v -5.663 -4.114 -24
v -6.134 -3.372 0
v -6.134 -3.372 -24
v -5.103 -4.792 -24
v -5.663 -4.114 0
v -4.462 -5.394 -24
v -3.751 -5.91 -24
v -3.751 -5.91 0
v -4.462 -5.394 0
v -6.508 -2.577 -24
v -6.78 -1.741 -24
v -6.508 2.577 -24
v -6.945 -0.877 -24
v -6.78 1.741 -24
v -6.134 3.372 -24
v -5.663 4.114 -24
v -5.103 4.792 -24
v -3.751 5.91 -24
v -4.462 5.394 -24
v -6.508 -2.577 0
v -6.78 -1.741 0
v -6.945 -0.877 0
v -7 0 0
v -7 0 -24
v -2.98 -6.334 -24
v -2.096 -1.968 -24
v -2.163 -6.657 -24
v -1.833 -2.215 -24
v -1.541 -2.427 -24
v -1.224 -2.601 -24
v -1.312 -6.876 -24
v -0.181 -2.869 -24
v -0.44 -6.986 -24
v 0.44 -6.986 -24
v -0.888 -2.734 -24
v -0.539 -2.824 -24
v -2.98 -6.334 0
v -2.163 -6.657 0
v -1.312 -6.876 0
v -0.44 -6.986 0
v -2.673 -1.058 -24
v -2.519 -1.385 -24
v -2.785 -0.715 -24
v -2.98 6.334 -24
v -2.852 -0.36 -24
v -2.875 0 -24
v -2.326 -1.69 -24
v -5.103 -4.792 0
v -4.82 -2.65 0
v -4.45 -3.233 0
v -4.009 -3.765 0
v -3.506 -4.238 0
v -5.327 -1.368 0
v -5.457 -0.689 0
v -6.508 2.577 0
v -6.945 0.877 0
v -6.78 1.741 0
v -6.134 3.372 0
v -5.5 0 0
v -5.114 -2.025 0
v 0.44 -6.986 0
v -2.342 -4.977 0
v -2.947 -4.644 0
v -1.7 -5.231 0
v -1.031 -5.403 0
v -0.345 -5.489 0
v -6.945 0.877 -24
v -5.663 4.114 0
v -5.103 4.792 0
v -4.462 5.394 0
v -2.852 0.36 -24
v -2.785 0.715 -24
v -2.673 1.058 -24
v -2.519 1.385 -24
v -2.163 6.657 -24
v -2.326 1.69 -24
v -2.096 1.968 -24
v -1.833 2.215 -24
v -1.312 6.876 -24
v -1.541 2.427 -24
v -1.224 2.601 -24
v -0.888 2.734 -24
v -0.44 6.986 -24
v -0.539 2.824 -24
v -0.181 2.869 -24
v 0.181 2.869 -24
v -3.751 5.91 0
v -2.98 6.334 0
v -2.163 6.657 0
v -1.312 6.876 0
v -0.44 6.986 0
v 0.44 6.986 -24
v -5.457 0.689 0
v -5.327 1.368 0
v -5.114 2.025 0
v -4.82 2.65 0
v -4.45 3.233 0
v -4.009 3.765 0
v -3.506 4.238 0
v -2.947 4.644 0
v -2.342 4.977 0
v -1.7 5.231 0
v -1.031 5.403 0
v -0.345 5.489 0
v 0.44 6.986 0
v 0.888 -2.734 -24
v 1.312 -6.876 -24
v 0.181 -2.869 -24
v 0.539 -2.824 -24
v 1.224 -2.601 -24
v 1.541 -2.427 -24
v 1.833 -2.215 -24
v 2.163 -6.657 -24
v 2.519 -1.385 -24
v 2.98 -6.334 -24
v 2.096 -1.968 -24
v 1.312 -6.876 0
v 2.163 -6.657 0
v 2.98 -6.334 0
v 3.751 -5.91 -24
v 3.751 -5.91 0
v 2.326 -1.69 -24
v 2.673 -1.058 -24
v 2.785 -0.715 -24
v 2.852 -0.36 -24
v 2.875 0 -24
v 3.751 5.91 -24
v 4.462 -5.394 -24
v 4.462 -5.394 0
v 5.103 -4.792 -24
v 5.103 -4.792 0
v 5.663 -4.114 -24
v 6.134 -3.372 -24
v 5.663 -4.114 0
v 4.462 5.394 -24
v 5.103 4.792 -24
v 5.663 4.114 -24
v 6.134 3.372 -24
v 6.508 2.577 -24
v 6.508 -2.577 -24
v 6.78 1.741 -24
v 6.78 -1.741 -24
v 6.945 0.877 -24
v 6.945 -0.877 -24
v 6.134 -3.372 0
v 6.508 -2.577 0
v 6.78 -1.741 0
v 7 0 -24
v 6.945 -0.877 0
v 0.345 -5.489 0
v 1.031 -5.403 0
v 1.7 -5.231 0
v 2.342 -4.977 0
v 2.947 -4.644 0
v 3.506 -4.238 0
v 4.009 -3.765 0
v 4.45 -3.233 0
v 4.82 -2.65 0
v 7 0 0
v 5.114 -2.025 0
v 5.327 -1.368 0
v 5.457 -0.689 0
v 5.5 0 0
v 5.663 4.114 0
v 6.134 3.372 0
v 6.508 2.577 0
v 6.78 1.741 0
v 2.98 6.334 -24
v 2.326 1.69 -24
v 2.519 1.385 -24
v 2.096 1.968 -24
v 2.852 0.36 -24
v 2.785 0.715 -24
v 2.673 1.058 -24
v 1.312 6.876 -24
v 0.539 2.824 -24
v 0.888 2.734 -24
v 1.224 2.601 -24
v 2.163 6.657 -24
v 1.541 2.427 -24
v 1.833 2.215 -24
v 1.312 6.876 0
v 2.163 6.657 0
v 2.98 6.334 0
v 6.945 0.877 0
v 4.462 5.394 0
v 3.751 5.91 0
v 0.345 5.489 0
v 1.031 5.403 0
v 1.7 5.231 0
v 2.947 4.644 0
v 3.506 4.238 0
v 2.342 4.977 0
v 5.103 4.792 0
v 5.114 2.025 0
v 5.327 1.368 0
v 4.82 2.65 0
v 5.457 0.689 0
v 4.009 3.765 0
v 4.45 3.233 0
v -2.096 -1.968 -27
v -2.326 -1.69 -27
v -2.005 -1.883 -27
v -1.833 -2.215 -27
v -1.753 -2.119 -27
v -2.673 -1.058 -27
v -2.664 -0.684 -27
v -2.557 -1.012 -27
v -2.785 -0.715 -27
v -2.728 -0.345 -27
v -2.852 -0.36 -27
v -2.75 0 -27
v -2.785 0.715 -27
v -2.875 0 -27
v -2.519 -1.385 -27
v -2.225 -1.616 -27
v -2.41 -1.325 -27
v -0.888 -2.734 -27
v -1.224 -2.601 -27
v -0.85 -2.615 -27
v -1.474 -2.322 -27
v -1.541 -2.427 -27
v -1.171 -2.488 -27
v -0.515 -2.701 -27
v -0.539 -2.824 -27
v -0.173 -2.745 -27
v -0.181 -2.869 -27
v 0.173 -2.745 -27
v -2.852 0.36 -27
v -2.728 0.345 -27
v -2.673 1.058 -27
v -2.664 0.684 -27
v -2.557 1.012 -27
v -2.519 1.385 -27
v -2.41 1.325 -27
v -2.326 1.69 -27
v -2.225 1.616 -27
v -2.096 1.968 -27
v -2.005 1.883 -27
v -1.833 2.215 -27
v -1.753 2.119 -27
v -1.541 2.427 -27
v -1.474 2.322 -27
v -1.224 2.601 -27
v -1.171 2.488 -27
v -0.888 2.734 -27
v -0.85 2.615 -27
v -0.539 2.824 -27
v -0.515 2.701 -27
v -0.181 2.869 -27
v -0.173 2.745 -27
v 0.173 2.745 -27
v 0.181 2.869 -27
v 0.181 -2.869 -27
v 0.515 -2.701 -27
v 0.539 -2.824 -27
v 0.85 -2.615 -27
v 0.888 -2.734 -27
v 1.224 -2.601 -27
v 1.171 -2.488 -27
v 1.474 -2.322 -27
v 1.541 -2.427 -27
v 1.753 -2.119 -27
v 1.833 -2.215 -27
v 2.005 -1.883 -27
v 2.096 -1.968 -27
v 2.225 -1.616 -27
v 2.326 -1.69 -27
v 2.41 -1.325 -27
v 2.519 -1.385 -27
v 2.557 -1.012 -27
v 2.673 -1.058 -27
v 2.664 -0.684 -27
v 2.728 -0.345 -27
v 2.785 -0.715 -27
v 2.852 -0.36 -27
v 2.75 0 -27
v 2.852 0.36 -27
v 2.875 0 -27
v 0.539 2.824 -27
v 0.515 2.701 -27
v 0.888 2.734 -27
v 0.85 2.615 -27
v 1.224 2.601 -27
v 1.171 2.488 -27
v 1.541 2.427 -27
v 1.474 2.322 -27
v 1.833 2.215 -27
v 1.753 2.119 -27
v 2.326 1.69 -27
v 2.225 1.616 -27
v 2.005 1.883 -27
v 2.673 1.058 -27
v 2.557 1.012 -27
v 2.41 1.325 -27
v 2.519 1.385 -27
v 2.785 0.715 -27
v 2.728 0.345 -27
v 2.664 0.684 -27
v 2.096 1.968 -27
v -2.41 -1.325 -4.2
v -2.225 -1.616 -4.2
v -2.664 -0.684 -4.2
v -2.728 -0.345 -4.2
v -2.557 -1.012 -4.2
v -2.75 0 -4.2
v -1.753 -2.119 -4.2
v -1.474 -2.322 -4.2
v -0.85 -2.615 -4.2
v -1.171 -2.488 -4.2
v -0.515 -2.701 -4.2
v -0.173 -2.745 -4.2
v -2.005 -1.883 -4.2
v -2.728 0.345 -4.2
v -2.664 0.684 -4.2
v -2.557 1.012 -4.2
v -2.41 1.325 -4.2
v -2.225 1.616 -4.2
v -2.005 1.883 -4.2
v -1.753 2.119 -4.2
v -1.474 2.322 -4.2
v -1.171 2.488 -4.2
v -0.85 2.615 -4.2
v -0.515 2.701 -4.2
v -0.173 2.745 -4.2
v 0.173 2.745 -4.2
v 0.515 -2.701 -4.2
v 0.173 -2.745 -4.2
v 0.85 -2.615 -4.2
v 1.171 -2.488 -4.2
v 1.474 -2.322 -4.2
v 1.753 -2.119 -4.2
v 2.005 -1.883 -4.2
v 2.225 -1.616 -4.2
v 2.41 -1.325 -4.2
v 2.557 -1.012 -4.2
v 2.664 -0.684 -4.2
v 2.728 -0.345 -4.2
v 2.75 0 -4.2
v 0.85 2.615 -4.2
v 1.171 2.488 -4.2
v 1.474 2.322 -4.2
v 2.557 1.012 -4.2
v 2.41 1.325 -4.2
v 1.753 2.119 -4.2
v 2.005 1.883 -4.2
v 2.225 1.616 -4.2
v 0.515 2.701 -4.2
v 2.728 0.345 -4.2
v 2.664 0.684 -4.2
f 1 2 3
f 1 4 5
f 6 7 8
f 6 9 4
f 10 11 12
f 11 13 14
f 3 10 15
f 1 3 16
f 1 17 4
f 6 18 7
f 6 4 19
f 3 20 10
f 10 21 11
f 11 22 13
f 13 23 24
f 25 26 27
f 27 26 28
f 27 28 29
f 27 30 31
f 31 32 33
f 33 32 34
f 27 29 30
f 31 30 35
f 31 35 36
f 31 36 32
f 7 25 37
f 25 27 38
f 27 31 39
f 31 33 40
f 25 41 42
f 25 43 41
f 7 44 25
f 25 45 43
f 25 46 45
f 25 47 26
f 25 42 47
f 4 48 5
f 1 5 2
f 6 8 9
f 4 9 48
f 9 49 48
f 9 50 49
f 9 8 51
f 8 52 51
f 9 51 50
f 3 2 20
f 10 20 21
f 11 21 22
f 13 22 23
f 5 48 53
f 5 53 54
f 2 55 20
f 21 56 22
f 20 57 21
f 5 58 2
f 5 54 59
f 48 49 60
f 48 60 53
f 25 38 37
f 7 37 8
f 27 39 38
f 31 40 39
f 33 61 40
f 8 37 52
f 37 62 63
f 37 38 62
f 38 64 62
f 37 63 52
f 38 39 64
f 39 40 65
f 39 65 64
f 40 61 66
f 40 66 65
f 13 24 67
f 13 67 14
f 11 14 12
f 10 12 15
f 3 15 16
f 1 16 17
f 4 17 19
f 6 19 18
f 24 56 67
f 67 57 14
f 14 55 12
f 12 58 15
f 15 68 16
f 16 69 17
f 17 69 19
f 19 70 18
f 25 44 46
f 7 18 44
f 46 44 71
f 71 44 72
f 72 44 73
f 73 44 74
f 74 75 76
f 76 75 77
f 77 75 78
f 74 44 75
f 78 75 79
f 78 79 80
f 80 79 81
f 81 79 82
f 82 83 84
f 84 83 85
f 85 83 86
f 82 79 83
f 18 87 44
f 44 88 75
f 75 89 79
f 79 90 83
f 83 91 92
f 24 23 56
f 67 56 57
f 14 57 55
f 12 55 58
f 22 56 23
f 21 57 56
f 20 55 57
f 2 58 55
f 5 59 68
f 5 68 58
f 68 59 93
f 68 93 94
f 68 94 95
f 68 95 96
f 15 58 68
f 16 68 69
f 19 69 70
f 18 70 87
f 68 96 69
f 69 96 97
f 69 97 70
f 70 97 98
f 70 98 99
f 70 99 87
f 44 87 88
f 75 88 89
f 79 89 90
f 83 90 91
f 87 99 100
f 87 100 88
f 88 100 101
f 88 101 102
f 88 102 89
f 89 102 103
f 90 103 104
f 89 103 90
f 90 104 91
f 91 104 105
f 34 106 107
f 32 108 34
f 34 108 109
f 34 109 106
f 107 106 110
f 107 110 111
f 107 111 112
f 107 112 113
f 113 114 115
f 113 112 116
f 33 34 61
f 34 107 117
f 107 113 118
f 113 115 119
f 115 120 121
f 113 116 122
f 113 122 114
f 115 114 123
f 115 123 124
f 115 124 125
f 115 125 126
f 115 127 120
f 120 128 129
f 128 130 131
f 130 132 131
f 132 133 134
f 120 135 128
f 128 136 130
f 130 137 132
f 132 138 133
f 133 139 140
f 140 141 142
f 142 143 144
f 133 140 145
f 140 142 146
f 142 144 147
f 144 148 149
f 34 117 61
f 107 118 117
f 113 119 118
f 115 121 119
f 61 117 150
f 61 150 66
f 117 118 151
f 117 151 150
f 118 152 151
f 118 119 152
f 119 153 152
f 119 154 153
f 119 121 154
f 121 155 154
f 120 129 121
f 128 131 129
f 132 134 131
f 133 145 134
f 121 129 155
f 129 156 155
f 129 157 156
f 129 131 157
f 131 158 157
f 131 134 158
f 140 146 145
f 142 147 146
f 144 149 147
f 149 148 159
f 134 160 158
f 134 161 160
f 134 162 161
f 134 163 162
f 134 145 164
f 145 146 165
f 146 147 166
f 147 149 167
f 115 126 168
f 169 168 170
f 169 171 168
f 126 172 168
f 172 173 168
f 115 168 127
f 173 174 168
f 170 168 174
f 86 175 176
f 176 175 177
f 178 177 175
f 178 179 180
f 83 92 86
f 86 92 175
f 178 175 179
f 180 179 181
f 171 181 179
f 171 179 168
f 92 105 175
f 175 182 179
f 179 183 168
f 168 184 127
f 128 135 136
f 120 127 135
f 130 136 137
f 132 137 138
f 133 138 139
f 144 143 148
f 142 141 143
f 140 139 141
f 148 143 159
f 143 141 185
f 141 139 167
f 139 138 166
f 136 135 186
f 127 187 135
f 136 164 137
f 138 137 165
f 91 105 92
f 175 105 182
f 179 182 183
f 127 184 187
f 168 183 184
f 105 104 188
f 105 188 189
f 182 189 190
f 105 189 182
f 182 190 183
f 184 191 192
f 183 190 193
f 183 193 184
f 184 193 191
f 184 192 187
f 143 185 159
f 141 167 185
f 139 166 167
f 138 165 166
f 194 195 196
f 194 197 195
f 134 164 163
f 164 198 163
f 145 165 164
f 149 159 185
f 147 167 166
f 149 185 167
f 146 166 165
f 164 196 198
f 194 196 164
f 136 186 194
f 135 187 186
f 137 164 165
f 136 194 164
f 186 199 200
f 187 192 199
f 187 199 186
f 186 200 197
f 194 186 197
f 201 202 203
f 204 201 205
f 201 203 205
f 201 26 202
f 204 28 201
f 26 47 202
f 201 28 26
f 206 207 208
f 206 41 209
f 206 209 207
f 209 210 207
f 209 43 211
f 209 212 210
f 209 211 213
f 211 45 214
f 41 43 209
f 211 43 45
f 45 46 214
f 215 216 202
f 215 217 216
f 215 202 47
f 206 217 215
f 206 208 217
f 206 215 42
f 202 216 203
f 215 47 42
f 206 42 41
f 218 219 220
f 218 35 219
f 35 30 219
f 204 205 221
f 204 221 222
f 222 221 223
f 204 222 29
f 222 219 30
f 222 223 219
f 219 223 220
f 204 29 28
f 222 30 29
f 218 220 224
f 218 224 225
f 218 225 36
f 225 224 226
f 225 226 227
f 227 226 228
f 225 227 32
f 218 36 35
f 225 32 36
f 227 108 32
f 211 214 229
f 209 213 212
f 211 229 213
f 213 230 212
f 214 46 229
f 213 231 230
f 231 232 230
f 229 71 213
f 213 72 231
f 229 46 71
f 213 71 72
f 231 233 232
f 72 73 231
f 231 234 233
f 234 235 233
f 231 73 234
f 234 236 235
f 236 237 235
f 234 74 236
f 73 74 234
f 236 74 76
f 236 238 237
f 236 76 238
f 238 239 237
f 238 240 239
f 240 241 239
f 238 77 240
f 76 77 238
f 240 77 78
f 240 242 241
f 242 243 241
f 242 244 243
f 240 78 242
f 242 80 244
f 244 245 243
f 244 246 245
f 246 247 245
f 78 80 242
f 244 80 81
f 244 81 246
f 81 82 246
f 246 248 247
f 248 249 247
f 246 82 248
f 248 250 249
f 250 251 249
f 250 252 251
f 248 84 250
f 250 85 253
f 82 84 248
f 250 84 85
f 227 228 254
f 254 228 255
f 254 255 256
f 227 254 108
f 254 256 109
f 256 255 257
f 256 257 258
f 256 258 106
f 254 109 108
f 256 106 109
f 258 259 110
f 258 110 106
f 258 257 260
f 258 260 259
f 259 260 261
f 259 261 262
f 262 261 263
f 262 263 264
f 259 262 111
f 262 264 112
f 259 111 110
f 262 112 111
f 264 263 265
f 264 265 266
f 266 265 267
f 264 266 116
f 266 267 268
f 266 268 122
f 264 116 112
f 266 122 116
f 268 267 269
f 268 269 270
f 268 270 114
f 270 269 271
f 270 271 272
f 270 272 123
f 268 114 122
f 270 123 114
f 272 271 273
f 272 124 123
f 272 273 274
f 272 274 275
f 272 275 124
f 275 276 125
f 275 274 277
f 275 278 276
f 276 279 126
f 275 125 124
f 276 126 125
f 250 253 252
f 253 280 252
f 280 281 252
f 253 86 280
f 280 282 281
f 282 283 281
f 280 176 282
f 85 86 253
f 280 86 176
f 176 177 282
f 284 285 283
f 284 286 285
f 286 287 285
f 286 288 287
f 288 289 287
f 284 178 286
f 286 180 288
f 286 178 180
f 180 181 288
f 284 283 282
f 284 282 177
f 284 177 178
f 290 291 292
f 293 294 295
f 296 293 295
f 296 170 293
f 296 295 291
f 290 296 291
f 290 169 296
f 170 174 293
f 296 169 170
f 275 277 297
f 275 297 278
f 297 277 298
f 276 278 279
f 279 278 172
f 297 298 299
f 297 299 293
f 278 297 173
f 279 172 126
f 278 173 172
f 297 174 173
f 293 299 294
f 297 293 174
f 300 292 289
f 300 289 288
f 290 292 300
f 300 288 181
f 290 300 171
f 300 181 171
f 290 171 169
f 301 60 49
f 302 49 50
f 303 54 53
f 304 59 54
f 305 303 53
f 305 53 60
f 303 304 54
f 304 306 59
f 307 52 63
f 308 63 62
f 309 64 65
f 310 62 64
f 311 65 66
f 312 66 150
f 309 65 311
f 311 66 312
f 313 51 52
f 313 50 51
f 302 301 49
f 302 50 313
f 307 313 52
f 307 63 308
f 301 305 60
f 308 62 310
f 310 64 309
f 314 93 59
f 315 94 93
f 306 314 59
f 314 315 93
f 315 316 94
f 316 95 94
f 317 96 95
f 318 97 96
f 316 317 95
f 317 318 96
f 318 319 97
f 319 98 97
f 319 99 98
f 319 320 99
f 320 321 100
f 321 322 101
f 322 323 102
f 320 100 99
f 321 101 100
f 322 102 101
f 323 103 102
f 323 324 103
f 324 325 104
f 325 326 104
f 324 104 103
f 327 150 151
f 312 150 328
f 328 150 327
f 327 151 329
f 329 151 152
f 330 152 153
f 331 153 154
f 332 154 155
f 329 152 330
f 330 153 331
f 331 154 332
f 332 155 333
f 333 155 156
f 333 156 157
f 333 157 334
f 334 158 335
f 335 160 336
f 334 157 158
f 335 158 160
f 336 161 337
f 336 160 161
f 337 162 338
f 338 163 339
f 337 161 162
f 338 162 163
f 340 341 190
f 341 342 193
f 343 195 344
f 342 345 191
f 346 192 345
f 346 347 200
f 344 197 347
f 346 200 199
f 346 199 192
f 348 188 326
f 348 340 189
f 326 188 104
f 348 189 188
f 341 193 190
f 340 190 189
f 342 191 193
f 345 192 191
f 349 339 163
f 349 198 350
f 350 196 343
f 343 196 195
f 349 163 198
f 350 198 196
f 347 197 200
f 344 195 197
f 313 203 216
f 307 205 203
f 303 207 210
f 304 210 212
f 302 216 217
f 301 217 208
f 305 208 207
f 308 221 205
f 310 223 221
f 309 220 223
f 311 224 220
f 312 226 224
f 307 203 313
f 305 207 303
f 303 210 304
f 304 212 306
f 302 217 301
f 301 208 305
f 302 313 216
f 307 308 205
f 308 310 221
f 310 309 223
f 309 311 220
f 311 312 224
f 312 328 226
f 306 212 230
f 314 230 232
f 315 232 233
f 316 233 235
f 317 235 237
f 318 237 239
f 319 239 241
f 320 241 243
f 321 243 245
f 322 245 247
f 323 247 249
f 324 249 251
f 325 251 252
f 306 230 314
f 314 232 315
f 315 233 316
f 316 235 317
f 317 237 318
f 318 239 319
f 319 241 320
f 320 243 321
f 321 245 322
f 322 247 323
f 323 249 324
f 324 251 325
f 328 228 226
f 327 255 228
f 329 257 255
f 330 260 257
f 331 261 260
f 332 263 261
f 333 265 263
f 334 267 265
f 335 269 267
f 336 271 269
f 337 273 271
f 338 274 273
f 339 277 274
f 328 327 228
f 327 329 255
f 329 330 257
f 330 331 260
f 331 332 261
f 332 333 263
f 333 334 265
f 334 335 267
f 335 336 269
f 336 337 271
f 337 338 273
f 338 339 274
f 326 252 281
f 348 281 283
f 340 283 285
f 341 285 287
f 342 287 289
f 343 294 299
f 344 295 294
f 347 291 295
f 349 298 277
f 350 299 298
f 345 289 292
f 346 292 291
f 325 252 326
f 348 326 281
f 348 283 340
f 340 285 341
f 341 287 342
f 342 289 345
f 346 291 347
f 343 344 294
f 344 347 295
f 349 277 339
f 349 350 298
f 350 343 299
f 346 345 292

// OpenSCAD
$fn = 50;


difference() {
	union() {
		translate(v = [0, 0, -24.0000000000]) {
			cylinder(h = 24, r = 7.0000000000);
		}
		#translate(v = [0, 0, -27.0000000000]) {
			cylinder(h = 27, r = 2.8750000000);
		}
	}
	union() {
		translate(v = [0, 0, 0]) {
			rotate(a = [0, 0, 0]) {
				difference() {
					union() {
						translate(v = [0, 0, -27.0000000000]) {
							cylinder(h = 27, r = 2.2500000000);
						}
						translate(v = [0, 0, -4.2000000000]) {
							cylinder(h = 4.2000000000, r1 = 2.7500000000, r2 = 5.5000000000);
						}
						translate(v = [0, 0, -27.0000000000]) {
							cylinder(h = 27, r = 2.7500000000);
						}
						translate(v = [0, 0, -27.0000000000]) {
							cylinder(h = 27, r = 2.2500000000);
						}
					}
					union();
				}
			}
		}
	}
}
